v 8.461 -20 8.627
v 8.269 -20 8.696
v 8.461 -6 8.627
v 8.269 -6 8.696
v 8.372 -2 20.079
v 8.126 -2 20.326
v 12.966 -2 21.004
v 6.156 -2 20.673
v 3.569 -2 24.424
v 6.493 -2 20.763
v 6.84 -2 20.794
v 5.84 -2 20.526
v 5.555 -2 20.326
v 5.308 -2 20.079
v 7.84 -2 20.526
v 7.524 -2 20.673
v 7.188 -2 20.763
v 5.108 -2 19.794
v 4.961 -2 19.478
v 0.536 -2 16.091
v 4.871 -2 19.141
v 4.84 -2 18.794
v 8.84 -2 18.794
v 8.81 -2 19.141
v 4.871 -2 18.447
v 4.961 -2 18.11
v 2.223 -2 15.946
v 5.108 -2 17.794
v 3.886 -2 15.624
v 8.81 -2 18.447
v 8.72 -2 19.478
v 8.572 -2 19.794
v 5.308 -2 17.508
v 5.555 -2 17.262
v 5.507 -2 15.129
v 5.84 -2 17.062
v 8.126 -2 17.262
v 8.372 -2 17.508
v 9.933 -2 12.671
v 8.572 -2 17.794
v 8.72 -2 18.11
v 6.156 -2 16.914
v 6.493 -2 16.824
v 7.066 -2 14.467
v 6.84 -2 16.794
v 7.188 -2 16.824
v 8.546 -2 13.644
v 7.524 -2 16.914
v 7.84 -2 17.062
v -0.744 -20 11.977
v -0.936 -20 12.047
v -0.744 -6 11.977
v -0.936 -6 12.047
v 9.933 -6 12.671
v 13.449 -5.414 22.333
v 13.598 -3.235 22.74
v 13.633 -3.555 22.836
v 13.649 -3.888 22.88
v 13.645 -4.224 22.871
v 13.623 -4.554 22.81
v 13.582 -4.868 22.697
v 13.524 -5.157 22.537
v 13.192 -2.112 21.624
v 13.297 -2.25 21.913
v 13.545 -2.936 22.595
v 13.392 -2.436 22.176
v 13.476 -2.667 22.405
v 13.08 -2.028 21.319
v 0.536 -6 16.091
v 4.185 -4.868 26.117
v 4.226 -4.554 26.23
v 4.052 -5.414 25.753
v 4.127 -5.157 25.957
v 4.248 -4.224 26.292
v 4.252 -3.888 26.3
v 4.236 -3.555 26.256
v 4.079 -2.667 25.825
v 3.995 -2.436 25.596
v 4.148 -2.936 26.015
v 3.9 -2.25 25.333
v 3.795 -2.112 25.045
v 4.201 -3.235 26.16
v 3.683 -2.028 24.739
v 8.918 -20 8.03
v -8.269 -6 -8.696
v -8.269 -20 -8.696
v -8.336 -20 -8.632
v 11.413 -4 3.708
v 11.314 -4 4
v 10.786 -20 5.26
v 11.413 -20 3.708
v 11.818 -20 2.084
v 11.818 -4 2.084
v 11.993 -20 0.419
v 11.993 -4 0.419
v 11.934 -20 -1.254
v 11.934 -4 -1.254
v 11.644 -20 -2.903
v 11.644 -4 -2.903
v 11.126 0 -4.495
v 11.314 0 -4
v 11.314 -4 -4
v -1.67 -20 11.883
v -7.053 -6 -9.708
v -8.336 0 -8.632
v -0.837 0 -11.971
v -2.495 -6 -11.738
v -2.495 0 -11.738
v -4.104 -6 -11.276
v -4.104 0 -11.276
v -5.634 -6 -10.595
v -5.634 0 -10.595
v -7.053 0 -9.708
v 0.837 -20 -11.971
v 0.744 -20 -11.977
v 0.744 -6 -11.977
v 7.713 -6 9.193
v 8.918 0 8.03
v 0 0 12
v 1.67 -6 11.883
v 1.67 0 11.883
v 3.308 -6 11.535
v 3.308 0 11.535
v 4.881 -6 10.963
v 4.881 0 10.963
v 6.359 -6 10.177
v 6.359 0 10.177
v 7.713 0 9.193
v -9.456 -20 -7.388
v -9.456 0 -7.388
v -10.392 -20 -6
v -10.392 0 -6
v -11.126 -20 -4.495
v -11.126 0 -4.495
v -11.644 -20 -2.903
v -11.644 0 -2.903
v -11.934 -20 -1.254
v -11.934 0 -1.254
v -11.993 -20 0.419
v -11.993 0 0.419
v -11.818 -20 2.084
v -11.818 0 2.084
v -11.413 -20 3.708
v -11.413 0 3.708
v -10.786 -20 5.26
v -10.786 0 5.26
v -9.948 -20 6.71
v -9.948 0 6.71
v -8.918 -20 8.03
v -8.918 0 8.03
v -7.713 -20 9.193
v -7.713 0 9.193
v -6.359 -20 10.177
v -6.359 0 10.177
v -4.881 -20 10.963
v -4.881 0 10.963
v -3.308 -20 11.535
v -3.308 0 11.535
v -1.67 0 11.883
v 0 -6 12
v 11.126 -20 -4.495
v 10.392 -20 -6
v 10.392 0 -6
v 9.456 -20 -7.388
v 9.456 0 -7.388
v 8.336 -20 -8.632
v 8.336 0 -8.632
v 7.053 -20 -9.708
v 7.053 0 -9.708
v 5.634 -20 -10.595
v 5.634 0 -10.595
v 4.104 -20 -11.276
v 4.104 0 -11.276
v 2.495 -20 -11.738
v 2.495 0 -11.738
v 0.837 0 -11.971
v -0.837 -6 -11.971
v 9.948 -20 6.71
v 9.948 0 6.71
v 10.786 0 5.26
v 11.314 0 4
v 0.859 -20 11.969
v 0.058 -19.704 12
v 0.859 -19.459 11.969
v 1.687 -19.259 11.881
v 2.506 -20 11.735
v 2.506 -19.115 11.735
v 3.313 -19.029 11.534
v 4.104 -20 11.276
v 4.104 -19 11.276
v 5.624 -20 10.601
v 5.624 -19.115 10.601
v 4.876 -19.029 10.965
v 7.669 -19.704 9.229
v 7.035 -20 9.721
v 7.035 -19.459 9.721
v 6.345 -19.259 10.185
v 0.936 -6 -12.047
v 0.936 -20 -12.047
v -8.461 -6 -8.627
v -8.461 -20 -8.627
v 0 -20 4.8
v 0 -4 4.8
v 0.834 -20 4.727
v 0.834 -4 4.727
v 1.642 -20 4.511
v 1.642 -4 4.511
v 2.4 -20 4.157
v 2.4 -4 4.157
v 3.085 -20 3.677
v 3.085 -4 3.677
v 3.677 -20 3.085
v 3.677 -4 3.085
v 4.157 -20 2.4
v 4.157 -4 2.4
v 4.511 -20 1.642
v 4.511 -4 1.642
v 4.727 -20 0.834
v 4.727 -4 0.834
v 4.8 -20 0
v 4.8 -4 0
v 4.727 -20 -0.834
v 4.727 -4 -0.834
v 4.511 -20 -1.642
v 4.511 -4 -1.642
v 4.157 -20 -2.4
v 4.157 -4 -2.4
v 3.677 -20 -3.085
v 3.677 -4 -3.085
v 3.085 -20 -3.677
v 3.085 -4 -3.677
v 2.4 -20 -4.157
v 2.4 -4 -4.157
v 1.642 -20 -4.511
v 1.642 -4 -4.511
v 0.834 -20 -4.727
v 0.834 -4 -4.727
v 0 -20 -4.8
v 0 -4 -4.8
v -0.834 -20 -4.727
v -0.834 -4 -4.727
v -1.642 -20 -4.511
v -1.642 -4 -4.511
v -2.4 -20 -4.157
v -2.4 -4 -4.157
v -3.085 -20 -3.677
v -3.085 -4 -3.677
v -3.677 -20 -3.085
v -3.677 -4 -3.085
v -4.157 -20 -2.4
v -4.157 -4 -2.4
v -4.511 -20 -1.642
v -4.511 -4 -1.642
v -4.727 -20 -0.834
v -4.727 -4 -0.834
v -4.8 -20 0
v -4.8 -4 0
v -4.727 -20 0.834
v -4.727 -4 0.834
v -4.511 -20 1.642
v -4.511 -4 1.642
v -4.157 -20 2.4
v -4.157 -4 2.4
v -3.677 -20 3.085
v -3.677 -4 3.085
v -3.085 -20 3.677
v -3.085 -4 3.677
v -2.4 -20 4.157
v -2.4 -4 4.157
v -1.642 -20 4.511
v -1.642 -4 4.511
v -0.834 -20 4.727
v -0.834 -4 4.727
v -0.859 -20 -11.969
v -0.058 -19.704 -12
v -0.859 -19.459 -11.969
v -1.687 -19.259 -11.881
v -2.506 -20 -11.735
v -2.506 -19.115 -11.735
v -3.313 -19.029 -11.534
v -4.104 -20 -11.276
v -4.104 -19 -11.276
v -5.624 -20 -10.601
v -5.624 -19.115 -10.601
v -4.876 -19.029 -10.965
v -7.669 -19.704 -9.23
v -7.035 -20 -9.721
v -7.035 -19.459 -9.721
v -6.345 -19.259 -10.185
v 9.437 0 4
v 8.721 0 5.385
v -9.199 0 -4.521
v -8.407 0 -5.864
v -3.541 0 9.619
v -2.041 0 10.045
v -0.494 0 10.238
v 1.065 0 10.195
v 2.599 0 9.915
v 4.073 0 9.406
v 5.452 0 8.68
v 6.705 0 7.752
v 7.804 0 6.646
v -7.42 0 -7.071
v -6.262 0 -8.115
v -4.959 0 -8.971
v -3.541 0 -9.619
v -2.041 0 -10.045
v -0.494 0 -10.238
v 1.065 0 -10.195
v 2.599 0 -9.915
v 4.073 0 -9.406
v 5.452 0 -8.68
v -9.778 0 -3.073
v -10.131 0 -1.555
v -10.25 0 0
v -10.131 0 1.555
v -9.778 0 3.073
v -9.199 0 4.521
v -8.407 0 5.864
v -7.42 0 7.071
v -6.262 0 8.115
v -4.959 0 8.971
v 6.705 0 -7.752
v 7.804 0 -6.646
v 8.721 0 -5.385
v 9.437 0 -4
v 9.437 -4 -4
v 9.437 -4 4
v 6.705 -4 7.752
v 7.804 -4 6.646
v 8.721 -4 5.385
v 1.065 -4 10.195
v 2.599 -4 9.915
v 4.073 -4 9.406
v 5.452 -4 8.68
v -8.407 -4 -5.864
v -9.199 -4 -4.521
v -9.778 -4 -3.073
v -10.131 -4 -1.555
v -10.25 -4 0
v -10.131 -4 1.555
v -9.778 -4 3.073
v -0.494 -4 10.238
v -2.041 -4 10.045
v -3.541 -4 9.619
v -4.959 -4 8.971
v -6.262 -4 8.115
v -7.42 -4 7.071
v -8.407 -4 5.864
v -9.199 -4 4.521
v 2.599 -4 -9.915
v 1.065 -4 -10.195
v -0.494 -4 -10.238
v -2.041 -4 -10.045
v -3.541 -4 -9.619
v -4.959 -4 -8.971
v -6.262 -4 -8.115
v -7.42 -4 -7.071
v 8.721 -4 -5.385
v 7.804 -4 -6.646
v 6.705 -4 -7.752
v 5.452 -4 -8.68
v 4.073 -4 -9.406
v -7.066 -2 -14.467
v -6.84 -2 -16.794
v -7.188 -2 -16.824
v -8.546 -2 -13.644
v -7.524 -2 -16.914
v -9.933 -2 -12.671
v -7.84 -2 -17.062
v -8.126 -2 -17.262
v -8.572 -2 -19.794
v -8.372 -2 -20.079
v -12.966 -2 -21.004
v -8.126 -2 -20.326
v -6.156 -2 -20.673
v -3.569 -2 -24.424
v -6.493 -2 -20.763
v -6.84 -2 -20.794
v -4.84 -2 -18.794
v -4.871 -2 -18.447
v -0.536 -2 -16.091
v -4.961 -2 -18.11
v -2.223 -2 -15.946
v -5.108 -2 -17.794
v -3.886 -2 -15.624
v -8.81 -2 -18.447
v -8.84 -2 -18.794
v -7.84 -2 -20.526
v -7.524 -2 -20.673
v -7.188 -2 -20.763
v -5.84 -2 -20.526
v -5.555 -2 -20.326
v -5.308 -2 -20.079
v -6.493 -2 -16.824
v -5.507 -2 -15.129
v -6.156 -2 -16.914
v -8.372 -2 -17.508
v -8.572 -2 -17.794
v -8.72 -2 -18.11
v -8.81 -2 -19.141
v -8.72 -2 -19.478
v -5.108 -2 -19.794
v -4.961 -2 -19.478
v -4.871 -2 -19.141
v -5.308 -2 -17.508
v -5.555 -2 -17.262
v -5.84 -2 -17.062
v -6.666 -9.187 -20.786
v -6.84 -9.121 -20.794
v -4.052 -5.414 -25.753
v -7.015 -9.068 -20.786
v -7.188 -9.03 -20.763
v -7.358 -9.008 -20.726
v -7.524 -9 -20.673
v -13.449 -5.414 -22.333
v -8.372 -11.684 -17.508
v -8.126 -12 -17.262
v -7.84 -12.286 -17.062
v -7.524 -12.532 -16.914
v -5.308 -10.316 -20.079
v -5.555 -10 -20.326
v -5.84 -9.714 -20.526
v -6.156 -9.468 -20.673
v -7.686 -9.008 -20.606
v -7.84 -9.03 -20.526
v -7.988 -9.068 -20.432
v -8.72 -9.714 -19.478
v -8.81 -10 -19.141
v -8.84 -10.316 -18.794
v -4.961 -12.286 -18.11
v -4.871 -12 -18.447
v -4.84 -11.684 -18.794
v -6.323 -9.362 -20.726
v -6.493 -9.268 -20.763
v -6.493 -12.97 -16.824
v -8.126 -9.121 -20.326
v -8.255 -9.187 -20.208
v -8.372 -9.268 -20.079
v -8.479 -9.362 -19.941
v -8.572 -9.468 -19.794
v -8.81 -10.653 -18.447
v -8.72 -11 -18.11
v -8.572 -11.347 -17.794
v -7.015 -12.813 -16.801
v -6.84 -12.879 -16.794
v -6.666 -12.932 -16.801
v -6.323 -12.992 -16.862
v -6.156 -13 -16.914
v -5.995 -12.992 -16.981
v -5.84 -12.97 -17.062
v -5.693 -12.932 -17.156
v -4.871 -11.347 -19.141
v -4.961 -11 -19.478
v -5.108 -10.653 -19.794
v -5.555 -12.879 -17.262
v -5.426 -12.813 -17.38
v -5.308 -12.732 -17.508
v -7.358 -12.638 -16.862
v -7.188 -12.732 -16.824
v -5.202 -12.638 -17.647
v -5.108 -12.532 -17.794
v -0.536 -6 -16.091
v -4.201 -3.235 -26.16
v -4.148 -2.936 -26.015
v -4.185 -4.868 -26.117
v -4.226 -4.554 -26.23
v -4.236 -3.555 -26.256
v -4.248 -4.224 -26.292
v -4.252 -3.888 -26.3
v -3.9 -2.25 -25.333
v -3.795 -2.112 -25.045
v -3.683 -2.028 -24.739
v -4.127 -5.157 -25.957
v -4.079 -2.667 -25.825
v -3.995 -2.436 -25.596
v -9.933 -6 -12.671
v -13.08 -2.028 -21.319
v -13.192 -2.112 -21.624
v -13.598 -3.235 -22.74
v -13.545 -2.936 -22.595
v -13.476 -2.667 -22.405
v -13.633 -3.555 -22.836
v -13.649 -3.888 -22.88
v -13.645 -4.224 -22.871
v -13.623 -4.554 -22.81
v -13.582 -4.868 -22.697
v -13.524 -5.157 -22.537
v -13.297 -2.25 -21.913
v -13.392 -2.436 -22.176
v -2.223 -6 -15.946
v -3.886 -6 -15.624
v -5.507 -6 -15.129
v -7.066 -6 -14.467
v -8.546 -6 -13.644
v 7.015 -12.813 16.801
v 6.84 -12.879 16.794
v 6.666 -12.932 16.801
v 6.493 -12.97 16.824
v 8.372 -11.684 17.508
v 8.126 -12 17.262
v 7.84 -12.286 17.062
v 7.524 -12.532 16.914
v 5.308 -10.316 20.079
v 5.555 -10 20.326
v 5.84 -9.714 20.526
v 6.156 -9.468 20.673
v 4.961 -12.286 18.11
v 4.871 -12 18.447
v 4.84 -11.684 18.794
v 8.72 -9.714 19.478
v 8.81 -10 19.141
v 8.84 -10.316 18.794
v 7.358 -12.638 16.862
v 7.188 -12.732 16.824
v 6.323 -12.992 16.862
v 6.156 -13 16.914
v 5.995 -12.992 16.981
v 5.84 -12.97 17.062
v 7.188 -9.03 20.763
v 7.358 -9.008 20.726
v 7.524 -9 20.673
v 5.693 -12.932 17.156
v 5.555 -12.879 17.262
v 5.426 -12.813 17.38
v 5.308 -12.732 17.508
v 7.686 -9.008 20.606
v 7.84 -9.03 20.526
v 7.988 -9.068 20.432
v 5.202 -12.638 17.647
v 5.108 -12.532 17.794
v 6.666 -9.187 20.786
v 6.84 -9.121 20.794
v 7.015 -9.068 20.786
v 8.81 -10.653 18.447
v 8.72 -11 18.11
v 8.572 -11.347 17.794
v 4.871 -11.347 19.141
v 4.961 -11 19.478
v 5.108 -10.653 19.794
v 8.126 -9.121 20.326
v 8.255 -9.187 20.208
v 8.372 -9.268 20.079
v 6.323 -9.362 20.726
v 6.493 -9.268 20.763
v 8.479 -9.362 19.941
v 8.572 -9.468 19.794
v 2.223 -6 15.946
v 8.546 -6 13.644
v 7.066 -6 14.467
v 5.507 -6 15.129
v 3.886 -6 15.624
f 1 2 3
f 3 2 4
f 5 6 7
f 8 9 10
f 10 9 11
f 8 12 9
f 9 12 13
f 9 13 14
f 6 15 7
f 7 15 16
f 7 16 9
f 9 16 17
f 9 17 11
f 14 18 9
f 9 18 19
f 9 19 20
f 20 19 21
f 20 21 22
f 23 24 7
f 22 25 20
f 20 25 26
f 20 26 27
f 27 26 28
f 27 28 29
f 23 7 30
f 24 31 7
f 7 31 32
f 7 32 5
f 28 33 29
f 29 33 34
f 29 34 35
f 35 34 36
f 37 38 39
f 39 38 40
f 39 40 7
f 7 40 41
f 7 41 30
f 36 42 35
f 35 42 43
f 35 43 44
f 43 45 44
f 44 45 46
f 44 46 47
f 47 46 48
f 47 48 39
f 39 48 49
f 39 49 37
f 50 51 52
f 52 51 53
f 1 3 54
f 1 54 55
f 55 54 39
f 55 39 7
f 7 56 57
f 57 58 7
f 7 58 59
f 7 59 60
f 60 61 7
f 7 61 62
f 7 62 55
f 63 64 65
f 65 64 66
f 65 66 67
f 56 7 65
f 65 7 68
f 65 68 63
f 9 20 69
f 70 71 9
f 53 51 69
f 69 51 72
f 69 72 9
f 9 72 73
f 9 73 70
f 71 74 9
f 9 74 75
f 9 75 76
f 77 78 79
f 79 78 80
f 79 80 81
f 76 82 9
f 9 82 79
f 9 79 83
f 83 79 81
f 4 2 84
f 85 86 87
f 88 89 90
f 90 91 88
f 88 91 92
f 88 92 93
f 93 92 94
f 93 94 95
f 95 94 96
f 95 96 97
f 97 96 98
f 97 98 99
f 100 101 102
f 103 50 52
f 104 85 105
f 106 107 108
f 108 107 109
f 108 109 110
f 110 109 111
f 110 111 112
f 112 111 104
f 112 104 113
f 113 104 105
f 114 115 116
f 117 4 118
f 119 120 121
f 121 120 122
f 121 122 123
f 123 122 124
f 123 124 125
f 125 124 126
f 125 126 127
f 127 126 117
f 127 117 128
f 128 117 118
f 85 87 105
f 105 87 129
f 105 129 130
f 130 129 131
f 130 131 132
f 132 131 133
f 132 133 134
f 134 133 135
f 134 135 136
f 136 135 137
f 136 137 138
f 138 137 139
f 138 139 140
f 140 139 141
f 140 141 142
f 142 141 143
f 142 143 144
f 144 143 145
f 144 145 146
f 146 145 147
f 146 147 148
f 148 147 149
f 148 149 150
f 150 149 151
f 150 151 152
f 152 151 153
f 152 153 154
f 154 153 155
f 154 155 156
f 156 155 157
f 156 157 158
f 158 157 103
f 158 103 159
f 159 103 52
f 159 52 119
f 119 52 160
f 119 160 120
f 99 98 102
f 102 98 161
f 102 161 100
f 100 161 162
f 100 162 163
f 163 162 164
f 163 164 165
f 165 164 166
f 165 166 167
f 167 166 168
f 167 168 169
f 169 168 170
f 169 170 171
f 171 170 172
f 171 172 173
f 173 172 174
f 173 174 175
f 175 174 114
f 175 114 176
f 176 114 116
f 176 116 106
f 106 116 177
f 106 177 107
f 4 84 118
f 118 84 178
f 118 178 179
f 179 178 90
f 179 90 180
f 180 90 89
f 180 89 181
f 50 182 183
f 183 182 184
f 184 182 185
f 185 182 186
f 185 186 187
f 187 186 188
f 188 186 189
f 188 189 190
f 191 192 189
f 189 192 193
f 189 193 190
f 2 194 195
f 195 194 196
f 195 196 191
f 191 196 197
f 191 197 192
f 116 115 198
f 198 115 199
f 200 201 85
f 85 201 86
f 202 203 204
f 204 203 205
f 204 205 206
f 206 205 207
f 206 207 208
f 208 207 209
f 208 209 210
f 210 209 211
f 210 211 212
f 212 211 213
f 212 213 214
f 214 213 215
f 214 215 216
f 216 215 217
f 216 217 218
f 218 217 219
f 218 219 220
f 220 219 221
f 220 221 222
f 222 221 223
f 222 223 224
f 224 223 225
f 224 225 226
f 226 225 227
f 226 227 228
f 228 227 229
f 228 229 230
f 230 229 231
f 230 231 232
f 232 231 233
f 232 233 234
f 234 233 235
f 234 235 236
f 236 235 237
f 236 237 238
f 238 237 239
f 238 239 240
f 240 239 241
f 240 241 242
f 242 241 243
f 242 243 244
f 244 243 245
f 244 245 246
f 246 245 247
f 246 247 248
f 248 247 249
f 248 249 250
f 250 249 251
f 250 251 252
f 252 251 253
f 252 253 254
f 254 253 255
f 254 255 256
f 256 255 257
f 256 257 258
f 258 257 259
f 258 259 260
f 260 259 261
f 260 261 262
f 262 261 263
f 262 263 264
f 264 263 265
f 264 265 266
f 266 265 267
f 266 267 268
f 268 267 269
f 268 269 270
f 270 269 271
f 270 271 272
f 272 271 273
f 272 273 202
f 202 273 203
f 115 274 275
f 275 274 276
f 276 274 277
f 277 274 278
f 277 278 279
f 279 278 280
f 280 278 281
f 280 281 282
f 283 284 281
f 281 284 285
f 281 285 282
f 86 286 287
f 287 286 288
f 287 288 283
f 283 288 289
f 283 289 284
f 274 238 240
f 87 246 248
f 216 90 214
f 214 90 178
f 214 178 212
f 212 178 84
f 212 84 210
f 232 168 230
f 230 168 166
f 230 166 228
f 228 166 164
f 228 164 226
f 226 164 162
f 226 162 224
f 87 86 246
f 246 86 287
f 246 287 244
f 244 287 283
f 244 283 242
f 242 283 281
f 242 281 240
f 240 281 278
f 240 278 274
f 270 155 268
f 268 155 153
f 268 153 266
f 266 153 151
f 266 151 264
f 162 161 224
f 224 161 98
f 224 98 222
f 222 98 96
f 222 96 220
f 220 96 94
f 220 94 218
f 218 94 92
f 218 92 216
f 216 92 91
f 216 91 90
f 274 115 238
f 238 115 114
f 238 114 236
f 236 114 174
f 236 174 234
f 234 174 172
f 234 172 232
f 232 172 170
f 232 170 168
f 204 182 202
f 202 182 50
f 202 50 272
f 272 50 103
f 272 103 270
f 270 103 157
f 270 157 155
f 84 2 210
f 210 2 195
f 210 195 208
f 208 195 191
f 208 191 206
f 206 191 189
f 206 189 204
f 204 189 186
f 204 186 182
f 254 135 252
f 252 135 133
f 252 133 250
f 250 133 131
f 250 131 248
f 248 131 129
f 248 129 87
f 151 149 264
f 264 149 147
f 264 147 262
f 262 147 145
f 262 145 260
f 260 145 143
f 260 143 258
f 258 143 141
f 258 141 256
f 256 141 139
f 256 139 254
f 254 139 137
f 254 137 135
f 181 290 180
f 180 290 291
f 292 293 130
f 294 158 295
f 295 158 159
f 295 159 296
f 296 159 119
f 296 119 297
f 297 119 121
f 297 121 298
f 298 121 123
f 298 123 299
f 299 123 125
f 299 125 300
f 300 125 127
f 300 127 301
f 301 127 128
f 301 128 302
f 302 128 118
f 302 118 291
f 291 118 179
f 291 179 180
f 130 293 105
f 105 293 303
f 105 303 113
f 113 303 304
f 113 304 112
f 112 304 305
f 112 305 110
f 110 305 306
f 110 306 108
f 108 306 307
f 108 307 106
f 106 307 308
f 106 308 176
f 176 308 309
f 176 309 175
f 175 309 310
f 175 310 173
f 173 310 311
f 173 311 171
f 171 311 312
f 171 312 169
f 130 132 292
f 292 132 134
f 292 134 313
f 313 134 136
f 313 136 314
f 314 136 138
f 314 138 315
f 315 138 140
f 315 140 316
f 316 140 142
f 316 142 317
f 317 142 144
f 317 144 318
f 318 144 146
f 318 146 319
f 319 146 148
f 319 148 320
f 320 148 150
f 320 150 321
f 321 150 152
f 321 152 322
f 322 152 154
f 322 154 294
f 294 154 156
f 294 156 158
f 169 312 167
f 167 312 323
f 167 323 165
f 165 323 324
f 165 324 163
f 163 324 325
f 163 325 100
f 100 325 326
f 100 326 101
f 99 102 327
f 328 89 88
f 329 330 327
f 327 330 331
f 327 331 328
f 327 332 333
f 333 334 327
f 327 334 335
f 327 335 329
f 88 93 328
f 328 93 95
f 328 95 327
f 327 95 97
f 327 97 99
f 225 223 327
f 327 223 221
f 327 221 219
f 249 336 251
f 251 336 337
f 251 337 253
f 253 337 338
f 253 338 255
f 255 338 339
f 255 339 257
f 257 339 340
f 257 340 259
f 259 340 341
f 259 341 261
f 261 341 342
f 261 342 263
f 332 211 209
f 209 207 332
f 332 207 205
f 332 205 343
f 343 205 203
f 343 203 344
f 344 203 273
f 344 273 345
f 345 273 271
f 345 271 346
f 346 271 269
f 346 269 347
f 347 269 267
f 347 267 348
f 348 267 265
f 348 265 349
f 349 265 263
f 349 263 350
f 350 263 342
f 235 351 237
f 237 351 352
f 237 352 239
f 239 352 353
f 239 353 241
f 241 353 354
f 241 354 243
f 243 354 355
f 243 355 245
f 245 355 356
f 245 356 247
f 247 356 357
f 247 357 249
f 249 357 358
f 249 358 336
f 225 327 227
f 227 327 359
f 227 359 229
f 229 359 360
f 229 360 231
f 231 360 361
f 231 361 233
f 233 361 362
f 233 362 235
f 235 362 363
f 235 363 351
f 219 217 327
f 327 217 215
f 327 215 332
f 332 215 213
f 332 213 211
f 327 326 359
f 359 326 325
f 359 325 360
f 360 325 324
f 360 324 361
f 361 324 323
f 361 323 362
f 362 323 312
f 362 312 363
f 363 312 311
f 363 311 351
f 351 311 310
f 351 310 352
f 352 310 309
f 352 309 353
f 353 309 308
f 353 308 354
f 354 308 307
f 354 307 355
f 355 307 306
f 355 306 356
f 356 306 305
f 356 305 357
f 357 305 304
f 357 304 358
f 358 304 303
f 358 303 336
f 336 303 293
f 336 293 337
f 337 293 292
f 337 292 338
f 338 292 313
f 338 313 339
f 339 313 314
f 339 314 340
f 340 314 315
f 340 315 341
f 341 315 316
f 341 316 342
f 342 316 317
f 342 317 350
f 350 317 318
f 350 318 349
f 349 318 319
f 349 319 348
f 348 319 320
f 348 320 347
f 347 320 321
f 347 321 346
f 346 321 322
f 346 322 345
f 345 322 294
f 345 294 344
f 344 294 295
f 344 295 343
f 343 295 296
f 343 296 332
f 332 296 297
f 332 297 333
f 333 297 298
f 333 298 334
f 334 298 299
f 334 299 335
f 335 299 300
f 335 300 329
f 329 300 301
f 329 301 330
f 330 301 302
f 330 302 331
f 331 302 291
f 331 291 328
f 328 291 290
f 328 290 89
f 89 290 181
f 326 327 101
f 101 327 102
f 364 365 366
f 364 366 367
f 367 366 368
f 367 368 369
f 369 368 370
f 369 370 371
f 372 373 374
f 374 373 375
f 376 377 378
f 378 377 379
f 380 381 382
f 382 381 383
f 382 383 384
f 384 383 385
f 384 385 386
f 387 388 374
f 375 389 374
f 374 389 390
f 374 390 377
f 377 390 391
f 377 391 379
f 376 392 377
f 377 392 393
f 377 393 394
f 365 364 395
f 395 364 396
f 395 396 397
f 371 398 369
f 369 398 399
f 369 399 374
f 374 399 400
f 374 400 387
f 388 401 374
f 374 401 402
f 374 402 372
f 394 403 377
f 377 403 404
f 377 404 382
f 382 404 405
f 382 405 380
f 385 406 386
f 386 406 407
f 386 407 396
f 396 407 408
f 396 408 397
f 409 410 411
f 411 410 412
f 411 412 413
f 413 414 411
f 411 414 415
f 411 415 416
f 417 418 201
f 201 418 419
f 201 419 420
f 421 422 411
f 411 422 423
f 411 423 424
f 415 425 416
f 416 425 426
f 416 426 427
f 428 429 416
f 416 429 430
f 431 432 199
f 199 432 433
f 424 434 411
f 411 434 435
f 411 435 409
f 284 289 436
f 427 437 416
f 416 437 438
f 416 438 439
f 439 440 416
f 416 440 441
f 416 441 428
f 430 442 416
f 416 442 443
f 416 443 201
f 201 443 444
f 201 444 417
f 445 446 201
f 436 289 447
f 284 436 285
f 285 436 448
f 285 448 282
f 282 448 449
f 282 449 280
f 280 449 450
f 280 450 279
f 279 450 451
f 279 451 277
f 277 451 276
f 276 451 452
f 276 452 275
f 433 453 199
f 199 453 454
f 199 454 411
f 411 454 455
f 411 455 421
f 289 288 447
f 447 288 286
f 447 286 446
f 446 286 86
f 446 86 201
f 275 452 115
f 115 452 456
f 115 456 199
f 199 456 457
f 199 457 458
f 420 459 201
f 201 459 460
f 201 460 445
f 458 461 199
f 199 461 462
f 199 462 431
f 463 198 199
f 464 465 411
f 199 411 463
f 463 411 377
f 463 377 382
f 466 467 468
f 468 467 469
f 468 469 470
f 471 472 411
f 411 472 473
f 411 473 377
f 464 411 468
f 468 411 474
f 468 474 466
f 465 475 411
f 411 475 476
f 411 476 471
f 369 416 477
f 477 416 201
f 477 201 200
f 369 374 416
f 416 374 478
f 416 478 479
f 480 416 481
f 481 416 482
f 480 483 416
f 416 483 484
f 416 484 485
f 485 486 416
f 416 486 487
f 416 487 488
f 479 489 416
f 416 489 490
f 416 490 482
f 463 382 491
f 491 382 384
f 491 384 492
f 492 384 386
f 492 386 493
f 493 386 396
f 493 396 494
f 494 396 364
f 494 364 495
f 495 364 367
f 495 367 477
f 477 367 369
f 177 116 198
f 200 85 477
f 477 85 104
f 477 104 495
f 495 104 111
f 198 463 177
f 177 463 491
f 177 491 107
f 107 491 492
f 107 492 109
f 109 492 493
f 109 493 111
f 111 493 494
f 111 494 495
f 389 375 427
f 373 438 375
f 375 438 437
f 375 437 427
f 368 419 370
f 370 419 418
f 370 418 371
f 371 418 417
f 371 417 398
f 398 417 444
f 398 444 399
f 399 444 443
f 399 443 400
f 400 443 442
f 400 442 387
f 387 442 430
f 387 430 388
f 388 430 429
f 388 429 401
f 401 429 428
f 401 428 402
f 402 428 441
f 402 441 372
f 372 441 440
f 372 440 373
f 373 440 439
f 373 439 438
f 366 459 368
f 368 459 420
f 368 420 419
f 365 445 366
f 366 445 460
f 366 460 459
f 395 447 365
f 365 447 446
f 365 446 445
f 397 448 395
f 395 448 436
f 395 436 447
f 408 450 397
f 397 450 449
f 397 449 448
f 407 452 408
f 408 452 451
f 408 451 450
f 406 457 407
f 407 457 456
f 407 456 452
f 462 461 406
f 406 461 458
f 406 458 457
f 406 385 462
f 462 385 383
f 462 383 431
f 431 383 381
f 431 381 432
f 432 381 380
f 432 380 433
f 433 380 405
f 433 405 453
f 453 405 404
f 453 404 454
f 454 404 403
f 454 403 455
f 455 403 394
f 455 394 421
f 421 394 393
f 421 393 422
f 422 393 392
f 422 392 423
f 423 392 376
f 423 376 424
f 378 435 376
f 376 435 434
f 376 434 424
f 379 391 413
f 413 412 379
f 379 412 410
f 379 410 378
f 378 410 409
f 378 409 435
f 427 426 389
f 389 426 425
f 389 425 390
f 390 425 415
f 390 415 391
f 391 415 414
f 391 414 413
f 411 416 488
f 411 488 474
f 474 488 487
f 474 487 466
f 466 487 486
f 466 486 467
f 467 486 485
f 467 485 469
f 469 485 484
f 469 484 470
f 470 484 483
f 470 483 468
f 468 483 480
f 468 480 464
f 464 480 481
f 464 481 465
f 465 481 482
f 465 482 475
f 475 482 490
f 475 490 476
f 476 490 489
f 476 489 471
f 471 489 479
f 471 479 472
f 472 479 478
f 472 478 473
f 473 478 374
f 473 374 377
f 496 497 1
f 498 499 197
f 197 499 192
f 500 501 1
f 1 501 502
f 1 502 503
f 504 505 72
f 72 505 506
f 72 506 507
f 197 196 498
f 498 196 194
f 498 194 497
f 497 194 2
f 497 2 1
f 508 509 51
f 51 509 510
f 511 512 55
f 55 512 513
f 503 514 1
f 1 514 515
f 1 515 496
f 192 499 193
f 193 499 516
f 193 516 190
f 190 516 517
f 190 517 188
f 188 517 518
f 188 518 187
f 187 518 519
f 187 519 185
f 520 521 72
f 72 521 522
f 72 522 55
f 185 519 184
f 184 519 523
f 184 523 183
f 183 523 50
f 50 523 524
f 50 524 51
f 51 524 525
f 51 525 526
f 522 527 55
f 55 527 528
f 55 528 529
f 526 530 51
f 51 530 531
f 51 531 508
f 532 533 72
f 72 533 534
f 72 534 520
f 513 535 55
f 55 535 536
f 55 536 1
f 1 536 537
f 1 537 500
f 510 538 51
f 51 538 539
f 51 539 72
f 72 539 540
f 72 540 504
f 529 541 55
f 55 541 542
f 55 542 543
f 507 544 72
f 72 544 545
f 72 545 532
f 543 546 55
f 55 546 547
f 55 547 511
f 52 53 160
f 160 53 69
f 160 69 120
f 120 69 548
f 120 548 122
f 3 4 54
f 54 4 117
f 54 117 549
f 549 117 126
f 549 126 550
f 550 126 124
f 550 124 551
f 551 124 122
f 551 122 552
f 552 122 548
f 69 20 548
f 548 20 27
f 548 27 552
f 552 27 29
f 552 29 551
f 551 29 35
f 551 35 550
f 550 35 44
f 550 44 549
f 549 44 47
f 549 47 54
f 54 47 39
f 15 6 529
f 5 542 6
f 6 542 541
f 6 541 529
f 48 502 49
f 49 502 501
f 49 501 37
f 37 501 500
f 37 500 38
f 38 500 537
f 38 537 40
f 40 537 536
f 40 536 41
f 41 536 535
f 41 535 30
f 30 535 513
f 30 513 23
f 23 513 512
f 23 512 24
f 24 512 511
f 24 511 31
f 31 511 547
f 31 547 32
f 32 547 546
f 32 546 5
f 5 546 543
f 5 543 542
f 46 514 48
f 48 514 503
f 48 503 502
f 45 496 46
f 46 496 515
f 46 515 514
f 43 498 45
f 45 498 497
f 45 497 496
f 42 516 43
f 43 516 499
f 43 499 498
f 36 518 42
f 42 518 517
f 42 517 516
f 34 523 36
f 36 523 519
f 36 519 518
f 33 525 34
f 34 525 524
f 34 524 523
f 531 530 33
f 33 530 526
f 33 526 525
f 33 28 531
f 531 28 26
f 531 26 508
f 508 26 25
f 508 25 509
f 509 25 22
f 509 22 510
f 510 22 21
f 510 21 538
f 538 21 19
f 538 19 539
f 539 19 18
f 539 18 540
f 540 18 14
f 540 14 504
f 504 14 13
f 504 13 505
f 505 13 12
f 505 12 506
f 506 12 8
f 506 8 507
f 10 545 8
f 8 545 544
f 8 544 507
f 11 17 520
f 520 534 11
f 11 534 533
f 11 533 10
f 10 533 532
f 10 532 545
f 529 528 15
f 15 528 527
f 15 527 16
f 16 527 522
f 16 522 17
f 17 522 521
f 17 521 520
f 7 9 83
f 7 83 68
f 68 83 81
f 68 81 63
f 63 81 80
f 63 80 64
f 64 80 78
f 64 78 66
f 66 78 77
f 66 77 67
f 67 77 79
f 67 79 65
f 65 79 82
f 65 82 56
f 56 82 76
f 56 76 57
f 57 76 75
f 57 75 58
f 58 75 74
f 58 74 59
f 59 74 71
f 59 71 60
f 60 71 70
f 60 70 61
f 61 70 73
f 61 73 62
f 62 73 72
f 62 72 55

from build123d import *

# Parameters (mm, degrees)
SKETCH1_R            = 12
SKETCH1_R_2          = 4.8
BOSS_EXTRUDE2_DEPTH  = 20
SKETCH1_3_R          = 4.8
CUT_EXTRUDE2_DEPTH   = 27.229754097
SKETCH3_R            = 10.25
CUT_EXTRUDE3_DEPTH   = 4
SKETCH5_W            = 11.035067707
SKETCH5_H            = 8
CUT_EXTRUDE5_DEPTH   = 4
BOSS_EXTRUDE3_DEPTH  = 5
SKETCH7_R            = 16.1
SKETCH7_R_2          = 12
CUT_EXTRUDE6_DEPTH   = 6
CUT_EXTRUDE7_REACH   = 39.1
SKETCH9_R            = 2
FILLET1_R            = 2
FILLET1_OF_MIRROR1_R = 2


with BuildPart() as part:
    # Sketch1 → Boss-Extrude2 (new body)
    # profile 1 of 2: a face of its own
    with BuildSketch(Plane(origin=(0, 0, 0), x_dir=(1, 0, 0), z_dir=(0, 1, 0))):
        with Locations(Location((0, 0, 0), (0, 0, 270))):
            Circle(SKETCH1_R)
        Circle(SKETCH1_R_2, mode=Mode.SUBTRACT)
    # profile 2 of 2: a face of its own
    with BuildSketch(Plane(origin=(0, 0, 0), x_dir=(1, 0, 0), z_dir=(0, 1, 0))):
        Circle(SKETCH1_R_2)
    extrude(amount=-BOSS_EXTRUDE2_DEPTH)

    # Sketch1<3> → Cut-Extrude2 (cut, through all)
    with BuildSketch(Plane(origin=(0, 0, 0), x_dir=(1, 0, 0), z_dir=(0, 1, 0))):
        with Locations(Location((0, 0, 0), (0, 0, 270))):
            Circle(SKETCH1_3_R)
    extrude(amount=-CUT_EXTRUDE2_DEPTH, mode=Mode.SUBTRACT)

    # Sketch3 → Cut-Extrude3 (cut)
    with BuildSketch(Plane(origin=(0, 0, 0), x_dir=(1, 0, 0), z_dir=(0, 1, 0))):
        with Locations(Location((0, 0, 0), (0, 0, 270))):
            Circle(SKETCH3_R)
    extrude(amount=-CUT_EXTRUDE3_DEPTH, mode=Mode.SUBTRACT)

    # Sketch5 → Cut-Extrude5 (cut)
    with BuildSketch(Plane(origin=(0, 0, 0), x_dir=(1, 0, 0), z_dir=(0, 1, 0))):
        with Locations((10.966087066, 0)):
            Rectangle(SKETCH5_W, SKETCH5_H)
    extrude(amount=-CUT_EXTRUDE5_DEPTH, mode=Mode.SUBTRACT)

    # Sketch6 → Boss-Extrude3 (add, symmetric)
    with BuildSketch(Plane(origin=(0, 0, 0), x_dir=(0, -1, 0), z_dir=(-0.9396926207859094, 0, 0.34202014332566616))):
        Polygon((2, -11), (20, -11), (2, -29), align=None)
    boss_extrude3 = extrude(amount=BOSS_EXTRUDE3_DEPTH, both=True)

    # Sketch7 → Cut-Extrude6 (cut)
    with BuildSketch(Plane(origin=(0, 0, 0), x_dir=(1, 0, 0), z_dir=(0, 1, 0))):
        Circle(SKETCH7_R)
        with Locations(Location((0, 0, 0), (0, 0, 340.528779366))):
            Circle(SKETCH7_R_2, mode=Mode.SUBTRACT)
    cut_extrude6 = extrude(amount=-CUT_EXTRUDE6_DEPTH, mode=Mode.SUBTRACT)

    # Cut-Extrude7: up to this plane
    cut_extrude7_end = Plane(origin=(0.936241527, -20, -12.046719545), z_dir=(-0.2418447626479747, -0.7071067811865439, -0.664463024388679))
    # Sketch9 → Cut-Extrude7 (cut, up to the surface)
    with BuildSketch(Plane(origin=(0, -2, 0), x_dir=(1, 0, 0), z_dir=(0, 1, 0)), mode=Mode.PRIVATE) as cut_extrude7_sk1:
        with Locations(Location((-6.840402867, 18.793852416, 0), (0, 0, 270))):
            Circle(SKETCH9_R)
    cut_extrude7_tool1 = split(extrude(cut_extrude7_sk1.sketch, amount=-CUT_EXTRUDE7_REACH, mode=Mode.PRIVATE), bisect_by=cut_extrude7_end, keep=Keep.BOTH, mode=Mode.PRIVATE)
    cut_extrude7 = cut_extrude7_tool1.solids().sort_by_distance((-6.840403, -2, -18.793852))[0]
    add(cut_extrude7, mode=Mode.SUBTRACT)

    # Fillet1
    fillet1_edges = [part.edges().sort_by_distance(p)[0] for p in [
        (-9.918584156, -2, -27.251086003),
    ]]
    fillet(fillet1_edges, radius=FILLET1_R)

    # Mirror1: Boss-Extrude3, Cut-Extrude6, Cut-Extrude7 across plane
    add(boss_extrude3.mirror(Plane(origin=(0, 0, 0), x_dir=(0.9396926207859094, 0, -0.3420201433256661), z_dir=(-0.3420201433256661, 0, -0.9396926207859093))))
    add(cut_extrude6.mirror(Plane(origin=(0, 0, 0), x_dir=(0.9396926207859094, 0, -0.3420201433256661), z_dir=(-0.3420201433256661, 0, -0.9396926207859093))), mode=Mode.SUBTRACT)
    add(cut_extrude7.mirror(Plane(origin=(0, 0, 0), x_dir=(0.9396926207859094, 0, -0.3420201433256661), z_dir=(-0.3420201433256661, 0, -0.9396926207859093))), mode=Mode.SUBTRACT)

    # Fillet1 of Mirror1
    fillet1_of_mirror1_edges = [part.edges().sort_by_distance(p)[0] for p in [
        (9.918584156, -2, 27.251086003),
    ]]
    fillet(fillet1_of_mirror1_edges, radius=FILLET1_OF_MIRROR1_R)


solid = part.part
